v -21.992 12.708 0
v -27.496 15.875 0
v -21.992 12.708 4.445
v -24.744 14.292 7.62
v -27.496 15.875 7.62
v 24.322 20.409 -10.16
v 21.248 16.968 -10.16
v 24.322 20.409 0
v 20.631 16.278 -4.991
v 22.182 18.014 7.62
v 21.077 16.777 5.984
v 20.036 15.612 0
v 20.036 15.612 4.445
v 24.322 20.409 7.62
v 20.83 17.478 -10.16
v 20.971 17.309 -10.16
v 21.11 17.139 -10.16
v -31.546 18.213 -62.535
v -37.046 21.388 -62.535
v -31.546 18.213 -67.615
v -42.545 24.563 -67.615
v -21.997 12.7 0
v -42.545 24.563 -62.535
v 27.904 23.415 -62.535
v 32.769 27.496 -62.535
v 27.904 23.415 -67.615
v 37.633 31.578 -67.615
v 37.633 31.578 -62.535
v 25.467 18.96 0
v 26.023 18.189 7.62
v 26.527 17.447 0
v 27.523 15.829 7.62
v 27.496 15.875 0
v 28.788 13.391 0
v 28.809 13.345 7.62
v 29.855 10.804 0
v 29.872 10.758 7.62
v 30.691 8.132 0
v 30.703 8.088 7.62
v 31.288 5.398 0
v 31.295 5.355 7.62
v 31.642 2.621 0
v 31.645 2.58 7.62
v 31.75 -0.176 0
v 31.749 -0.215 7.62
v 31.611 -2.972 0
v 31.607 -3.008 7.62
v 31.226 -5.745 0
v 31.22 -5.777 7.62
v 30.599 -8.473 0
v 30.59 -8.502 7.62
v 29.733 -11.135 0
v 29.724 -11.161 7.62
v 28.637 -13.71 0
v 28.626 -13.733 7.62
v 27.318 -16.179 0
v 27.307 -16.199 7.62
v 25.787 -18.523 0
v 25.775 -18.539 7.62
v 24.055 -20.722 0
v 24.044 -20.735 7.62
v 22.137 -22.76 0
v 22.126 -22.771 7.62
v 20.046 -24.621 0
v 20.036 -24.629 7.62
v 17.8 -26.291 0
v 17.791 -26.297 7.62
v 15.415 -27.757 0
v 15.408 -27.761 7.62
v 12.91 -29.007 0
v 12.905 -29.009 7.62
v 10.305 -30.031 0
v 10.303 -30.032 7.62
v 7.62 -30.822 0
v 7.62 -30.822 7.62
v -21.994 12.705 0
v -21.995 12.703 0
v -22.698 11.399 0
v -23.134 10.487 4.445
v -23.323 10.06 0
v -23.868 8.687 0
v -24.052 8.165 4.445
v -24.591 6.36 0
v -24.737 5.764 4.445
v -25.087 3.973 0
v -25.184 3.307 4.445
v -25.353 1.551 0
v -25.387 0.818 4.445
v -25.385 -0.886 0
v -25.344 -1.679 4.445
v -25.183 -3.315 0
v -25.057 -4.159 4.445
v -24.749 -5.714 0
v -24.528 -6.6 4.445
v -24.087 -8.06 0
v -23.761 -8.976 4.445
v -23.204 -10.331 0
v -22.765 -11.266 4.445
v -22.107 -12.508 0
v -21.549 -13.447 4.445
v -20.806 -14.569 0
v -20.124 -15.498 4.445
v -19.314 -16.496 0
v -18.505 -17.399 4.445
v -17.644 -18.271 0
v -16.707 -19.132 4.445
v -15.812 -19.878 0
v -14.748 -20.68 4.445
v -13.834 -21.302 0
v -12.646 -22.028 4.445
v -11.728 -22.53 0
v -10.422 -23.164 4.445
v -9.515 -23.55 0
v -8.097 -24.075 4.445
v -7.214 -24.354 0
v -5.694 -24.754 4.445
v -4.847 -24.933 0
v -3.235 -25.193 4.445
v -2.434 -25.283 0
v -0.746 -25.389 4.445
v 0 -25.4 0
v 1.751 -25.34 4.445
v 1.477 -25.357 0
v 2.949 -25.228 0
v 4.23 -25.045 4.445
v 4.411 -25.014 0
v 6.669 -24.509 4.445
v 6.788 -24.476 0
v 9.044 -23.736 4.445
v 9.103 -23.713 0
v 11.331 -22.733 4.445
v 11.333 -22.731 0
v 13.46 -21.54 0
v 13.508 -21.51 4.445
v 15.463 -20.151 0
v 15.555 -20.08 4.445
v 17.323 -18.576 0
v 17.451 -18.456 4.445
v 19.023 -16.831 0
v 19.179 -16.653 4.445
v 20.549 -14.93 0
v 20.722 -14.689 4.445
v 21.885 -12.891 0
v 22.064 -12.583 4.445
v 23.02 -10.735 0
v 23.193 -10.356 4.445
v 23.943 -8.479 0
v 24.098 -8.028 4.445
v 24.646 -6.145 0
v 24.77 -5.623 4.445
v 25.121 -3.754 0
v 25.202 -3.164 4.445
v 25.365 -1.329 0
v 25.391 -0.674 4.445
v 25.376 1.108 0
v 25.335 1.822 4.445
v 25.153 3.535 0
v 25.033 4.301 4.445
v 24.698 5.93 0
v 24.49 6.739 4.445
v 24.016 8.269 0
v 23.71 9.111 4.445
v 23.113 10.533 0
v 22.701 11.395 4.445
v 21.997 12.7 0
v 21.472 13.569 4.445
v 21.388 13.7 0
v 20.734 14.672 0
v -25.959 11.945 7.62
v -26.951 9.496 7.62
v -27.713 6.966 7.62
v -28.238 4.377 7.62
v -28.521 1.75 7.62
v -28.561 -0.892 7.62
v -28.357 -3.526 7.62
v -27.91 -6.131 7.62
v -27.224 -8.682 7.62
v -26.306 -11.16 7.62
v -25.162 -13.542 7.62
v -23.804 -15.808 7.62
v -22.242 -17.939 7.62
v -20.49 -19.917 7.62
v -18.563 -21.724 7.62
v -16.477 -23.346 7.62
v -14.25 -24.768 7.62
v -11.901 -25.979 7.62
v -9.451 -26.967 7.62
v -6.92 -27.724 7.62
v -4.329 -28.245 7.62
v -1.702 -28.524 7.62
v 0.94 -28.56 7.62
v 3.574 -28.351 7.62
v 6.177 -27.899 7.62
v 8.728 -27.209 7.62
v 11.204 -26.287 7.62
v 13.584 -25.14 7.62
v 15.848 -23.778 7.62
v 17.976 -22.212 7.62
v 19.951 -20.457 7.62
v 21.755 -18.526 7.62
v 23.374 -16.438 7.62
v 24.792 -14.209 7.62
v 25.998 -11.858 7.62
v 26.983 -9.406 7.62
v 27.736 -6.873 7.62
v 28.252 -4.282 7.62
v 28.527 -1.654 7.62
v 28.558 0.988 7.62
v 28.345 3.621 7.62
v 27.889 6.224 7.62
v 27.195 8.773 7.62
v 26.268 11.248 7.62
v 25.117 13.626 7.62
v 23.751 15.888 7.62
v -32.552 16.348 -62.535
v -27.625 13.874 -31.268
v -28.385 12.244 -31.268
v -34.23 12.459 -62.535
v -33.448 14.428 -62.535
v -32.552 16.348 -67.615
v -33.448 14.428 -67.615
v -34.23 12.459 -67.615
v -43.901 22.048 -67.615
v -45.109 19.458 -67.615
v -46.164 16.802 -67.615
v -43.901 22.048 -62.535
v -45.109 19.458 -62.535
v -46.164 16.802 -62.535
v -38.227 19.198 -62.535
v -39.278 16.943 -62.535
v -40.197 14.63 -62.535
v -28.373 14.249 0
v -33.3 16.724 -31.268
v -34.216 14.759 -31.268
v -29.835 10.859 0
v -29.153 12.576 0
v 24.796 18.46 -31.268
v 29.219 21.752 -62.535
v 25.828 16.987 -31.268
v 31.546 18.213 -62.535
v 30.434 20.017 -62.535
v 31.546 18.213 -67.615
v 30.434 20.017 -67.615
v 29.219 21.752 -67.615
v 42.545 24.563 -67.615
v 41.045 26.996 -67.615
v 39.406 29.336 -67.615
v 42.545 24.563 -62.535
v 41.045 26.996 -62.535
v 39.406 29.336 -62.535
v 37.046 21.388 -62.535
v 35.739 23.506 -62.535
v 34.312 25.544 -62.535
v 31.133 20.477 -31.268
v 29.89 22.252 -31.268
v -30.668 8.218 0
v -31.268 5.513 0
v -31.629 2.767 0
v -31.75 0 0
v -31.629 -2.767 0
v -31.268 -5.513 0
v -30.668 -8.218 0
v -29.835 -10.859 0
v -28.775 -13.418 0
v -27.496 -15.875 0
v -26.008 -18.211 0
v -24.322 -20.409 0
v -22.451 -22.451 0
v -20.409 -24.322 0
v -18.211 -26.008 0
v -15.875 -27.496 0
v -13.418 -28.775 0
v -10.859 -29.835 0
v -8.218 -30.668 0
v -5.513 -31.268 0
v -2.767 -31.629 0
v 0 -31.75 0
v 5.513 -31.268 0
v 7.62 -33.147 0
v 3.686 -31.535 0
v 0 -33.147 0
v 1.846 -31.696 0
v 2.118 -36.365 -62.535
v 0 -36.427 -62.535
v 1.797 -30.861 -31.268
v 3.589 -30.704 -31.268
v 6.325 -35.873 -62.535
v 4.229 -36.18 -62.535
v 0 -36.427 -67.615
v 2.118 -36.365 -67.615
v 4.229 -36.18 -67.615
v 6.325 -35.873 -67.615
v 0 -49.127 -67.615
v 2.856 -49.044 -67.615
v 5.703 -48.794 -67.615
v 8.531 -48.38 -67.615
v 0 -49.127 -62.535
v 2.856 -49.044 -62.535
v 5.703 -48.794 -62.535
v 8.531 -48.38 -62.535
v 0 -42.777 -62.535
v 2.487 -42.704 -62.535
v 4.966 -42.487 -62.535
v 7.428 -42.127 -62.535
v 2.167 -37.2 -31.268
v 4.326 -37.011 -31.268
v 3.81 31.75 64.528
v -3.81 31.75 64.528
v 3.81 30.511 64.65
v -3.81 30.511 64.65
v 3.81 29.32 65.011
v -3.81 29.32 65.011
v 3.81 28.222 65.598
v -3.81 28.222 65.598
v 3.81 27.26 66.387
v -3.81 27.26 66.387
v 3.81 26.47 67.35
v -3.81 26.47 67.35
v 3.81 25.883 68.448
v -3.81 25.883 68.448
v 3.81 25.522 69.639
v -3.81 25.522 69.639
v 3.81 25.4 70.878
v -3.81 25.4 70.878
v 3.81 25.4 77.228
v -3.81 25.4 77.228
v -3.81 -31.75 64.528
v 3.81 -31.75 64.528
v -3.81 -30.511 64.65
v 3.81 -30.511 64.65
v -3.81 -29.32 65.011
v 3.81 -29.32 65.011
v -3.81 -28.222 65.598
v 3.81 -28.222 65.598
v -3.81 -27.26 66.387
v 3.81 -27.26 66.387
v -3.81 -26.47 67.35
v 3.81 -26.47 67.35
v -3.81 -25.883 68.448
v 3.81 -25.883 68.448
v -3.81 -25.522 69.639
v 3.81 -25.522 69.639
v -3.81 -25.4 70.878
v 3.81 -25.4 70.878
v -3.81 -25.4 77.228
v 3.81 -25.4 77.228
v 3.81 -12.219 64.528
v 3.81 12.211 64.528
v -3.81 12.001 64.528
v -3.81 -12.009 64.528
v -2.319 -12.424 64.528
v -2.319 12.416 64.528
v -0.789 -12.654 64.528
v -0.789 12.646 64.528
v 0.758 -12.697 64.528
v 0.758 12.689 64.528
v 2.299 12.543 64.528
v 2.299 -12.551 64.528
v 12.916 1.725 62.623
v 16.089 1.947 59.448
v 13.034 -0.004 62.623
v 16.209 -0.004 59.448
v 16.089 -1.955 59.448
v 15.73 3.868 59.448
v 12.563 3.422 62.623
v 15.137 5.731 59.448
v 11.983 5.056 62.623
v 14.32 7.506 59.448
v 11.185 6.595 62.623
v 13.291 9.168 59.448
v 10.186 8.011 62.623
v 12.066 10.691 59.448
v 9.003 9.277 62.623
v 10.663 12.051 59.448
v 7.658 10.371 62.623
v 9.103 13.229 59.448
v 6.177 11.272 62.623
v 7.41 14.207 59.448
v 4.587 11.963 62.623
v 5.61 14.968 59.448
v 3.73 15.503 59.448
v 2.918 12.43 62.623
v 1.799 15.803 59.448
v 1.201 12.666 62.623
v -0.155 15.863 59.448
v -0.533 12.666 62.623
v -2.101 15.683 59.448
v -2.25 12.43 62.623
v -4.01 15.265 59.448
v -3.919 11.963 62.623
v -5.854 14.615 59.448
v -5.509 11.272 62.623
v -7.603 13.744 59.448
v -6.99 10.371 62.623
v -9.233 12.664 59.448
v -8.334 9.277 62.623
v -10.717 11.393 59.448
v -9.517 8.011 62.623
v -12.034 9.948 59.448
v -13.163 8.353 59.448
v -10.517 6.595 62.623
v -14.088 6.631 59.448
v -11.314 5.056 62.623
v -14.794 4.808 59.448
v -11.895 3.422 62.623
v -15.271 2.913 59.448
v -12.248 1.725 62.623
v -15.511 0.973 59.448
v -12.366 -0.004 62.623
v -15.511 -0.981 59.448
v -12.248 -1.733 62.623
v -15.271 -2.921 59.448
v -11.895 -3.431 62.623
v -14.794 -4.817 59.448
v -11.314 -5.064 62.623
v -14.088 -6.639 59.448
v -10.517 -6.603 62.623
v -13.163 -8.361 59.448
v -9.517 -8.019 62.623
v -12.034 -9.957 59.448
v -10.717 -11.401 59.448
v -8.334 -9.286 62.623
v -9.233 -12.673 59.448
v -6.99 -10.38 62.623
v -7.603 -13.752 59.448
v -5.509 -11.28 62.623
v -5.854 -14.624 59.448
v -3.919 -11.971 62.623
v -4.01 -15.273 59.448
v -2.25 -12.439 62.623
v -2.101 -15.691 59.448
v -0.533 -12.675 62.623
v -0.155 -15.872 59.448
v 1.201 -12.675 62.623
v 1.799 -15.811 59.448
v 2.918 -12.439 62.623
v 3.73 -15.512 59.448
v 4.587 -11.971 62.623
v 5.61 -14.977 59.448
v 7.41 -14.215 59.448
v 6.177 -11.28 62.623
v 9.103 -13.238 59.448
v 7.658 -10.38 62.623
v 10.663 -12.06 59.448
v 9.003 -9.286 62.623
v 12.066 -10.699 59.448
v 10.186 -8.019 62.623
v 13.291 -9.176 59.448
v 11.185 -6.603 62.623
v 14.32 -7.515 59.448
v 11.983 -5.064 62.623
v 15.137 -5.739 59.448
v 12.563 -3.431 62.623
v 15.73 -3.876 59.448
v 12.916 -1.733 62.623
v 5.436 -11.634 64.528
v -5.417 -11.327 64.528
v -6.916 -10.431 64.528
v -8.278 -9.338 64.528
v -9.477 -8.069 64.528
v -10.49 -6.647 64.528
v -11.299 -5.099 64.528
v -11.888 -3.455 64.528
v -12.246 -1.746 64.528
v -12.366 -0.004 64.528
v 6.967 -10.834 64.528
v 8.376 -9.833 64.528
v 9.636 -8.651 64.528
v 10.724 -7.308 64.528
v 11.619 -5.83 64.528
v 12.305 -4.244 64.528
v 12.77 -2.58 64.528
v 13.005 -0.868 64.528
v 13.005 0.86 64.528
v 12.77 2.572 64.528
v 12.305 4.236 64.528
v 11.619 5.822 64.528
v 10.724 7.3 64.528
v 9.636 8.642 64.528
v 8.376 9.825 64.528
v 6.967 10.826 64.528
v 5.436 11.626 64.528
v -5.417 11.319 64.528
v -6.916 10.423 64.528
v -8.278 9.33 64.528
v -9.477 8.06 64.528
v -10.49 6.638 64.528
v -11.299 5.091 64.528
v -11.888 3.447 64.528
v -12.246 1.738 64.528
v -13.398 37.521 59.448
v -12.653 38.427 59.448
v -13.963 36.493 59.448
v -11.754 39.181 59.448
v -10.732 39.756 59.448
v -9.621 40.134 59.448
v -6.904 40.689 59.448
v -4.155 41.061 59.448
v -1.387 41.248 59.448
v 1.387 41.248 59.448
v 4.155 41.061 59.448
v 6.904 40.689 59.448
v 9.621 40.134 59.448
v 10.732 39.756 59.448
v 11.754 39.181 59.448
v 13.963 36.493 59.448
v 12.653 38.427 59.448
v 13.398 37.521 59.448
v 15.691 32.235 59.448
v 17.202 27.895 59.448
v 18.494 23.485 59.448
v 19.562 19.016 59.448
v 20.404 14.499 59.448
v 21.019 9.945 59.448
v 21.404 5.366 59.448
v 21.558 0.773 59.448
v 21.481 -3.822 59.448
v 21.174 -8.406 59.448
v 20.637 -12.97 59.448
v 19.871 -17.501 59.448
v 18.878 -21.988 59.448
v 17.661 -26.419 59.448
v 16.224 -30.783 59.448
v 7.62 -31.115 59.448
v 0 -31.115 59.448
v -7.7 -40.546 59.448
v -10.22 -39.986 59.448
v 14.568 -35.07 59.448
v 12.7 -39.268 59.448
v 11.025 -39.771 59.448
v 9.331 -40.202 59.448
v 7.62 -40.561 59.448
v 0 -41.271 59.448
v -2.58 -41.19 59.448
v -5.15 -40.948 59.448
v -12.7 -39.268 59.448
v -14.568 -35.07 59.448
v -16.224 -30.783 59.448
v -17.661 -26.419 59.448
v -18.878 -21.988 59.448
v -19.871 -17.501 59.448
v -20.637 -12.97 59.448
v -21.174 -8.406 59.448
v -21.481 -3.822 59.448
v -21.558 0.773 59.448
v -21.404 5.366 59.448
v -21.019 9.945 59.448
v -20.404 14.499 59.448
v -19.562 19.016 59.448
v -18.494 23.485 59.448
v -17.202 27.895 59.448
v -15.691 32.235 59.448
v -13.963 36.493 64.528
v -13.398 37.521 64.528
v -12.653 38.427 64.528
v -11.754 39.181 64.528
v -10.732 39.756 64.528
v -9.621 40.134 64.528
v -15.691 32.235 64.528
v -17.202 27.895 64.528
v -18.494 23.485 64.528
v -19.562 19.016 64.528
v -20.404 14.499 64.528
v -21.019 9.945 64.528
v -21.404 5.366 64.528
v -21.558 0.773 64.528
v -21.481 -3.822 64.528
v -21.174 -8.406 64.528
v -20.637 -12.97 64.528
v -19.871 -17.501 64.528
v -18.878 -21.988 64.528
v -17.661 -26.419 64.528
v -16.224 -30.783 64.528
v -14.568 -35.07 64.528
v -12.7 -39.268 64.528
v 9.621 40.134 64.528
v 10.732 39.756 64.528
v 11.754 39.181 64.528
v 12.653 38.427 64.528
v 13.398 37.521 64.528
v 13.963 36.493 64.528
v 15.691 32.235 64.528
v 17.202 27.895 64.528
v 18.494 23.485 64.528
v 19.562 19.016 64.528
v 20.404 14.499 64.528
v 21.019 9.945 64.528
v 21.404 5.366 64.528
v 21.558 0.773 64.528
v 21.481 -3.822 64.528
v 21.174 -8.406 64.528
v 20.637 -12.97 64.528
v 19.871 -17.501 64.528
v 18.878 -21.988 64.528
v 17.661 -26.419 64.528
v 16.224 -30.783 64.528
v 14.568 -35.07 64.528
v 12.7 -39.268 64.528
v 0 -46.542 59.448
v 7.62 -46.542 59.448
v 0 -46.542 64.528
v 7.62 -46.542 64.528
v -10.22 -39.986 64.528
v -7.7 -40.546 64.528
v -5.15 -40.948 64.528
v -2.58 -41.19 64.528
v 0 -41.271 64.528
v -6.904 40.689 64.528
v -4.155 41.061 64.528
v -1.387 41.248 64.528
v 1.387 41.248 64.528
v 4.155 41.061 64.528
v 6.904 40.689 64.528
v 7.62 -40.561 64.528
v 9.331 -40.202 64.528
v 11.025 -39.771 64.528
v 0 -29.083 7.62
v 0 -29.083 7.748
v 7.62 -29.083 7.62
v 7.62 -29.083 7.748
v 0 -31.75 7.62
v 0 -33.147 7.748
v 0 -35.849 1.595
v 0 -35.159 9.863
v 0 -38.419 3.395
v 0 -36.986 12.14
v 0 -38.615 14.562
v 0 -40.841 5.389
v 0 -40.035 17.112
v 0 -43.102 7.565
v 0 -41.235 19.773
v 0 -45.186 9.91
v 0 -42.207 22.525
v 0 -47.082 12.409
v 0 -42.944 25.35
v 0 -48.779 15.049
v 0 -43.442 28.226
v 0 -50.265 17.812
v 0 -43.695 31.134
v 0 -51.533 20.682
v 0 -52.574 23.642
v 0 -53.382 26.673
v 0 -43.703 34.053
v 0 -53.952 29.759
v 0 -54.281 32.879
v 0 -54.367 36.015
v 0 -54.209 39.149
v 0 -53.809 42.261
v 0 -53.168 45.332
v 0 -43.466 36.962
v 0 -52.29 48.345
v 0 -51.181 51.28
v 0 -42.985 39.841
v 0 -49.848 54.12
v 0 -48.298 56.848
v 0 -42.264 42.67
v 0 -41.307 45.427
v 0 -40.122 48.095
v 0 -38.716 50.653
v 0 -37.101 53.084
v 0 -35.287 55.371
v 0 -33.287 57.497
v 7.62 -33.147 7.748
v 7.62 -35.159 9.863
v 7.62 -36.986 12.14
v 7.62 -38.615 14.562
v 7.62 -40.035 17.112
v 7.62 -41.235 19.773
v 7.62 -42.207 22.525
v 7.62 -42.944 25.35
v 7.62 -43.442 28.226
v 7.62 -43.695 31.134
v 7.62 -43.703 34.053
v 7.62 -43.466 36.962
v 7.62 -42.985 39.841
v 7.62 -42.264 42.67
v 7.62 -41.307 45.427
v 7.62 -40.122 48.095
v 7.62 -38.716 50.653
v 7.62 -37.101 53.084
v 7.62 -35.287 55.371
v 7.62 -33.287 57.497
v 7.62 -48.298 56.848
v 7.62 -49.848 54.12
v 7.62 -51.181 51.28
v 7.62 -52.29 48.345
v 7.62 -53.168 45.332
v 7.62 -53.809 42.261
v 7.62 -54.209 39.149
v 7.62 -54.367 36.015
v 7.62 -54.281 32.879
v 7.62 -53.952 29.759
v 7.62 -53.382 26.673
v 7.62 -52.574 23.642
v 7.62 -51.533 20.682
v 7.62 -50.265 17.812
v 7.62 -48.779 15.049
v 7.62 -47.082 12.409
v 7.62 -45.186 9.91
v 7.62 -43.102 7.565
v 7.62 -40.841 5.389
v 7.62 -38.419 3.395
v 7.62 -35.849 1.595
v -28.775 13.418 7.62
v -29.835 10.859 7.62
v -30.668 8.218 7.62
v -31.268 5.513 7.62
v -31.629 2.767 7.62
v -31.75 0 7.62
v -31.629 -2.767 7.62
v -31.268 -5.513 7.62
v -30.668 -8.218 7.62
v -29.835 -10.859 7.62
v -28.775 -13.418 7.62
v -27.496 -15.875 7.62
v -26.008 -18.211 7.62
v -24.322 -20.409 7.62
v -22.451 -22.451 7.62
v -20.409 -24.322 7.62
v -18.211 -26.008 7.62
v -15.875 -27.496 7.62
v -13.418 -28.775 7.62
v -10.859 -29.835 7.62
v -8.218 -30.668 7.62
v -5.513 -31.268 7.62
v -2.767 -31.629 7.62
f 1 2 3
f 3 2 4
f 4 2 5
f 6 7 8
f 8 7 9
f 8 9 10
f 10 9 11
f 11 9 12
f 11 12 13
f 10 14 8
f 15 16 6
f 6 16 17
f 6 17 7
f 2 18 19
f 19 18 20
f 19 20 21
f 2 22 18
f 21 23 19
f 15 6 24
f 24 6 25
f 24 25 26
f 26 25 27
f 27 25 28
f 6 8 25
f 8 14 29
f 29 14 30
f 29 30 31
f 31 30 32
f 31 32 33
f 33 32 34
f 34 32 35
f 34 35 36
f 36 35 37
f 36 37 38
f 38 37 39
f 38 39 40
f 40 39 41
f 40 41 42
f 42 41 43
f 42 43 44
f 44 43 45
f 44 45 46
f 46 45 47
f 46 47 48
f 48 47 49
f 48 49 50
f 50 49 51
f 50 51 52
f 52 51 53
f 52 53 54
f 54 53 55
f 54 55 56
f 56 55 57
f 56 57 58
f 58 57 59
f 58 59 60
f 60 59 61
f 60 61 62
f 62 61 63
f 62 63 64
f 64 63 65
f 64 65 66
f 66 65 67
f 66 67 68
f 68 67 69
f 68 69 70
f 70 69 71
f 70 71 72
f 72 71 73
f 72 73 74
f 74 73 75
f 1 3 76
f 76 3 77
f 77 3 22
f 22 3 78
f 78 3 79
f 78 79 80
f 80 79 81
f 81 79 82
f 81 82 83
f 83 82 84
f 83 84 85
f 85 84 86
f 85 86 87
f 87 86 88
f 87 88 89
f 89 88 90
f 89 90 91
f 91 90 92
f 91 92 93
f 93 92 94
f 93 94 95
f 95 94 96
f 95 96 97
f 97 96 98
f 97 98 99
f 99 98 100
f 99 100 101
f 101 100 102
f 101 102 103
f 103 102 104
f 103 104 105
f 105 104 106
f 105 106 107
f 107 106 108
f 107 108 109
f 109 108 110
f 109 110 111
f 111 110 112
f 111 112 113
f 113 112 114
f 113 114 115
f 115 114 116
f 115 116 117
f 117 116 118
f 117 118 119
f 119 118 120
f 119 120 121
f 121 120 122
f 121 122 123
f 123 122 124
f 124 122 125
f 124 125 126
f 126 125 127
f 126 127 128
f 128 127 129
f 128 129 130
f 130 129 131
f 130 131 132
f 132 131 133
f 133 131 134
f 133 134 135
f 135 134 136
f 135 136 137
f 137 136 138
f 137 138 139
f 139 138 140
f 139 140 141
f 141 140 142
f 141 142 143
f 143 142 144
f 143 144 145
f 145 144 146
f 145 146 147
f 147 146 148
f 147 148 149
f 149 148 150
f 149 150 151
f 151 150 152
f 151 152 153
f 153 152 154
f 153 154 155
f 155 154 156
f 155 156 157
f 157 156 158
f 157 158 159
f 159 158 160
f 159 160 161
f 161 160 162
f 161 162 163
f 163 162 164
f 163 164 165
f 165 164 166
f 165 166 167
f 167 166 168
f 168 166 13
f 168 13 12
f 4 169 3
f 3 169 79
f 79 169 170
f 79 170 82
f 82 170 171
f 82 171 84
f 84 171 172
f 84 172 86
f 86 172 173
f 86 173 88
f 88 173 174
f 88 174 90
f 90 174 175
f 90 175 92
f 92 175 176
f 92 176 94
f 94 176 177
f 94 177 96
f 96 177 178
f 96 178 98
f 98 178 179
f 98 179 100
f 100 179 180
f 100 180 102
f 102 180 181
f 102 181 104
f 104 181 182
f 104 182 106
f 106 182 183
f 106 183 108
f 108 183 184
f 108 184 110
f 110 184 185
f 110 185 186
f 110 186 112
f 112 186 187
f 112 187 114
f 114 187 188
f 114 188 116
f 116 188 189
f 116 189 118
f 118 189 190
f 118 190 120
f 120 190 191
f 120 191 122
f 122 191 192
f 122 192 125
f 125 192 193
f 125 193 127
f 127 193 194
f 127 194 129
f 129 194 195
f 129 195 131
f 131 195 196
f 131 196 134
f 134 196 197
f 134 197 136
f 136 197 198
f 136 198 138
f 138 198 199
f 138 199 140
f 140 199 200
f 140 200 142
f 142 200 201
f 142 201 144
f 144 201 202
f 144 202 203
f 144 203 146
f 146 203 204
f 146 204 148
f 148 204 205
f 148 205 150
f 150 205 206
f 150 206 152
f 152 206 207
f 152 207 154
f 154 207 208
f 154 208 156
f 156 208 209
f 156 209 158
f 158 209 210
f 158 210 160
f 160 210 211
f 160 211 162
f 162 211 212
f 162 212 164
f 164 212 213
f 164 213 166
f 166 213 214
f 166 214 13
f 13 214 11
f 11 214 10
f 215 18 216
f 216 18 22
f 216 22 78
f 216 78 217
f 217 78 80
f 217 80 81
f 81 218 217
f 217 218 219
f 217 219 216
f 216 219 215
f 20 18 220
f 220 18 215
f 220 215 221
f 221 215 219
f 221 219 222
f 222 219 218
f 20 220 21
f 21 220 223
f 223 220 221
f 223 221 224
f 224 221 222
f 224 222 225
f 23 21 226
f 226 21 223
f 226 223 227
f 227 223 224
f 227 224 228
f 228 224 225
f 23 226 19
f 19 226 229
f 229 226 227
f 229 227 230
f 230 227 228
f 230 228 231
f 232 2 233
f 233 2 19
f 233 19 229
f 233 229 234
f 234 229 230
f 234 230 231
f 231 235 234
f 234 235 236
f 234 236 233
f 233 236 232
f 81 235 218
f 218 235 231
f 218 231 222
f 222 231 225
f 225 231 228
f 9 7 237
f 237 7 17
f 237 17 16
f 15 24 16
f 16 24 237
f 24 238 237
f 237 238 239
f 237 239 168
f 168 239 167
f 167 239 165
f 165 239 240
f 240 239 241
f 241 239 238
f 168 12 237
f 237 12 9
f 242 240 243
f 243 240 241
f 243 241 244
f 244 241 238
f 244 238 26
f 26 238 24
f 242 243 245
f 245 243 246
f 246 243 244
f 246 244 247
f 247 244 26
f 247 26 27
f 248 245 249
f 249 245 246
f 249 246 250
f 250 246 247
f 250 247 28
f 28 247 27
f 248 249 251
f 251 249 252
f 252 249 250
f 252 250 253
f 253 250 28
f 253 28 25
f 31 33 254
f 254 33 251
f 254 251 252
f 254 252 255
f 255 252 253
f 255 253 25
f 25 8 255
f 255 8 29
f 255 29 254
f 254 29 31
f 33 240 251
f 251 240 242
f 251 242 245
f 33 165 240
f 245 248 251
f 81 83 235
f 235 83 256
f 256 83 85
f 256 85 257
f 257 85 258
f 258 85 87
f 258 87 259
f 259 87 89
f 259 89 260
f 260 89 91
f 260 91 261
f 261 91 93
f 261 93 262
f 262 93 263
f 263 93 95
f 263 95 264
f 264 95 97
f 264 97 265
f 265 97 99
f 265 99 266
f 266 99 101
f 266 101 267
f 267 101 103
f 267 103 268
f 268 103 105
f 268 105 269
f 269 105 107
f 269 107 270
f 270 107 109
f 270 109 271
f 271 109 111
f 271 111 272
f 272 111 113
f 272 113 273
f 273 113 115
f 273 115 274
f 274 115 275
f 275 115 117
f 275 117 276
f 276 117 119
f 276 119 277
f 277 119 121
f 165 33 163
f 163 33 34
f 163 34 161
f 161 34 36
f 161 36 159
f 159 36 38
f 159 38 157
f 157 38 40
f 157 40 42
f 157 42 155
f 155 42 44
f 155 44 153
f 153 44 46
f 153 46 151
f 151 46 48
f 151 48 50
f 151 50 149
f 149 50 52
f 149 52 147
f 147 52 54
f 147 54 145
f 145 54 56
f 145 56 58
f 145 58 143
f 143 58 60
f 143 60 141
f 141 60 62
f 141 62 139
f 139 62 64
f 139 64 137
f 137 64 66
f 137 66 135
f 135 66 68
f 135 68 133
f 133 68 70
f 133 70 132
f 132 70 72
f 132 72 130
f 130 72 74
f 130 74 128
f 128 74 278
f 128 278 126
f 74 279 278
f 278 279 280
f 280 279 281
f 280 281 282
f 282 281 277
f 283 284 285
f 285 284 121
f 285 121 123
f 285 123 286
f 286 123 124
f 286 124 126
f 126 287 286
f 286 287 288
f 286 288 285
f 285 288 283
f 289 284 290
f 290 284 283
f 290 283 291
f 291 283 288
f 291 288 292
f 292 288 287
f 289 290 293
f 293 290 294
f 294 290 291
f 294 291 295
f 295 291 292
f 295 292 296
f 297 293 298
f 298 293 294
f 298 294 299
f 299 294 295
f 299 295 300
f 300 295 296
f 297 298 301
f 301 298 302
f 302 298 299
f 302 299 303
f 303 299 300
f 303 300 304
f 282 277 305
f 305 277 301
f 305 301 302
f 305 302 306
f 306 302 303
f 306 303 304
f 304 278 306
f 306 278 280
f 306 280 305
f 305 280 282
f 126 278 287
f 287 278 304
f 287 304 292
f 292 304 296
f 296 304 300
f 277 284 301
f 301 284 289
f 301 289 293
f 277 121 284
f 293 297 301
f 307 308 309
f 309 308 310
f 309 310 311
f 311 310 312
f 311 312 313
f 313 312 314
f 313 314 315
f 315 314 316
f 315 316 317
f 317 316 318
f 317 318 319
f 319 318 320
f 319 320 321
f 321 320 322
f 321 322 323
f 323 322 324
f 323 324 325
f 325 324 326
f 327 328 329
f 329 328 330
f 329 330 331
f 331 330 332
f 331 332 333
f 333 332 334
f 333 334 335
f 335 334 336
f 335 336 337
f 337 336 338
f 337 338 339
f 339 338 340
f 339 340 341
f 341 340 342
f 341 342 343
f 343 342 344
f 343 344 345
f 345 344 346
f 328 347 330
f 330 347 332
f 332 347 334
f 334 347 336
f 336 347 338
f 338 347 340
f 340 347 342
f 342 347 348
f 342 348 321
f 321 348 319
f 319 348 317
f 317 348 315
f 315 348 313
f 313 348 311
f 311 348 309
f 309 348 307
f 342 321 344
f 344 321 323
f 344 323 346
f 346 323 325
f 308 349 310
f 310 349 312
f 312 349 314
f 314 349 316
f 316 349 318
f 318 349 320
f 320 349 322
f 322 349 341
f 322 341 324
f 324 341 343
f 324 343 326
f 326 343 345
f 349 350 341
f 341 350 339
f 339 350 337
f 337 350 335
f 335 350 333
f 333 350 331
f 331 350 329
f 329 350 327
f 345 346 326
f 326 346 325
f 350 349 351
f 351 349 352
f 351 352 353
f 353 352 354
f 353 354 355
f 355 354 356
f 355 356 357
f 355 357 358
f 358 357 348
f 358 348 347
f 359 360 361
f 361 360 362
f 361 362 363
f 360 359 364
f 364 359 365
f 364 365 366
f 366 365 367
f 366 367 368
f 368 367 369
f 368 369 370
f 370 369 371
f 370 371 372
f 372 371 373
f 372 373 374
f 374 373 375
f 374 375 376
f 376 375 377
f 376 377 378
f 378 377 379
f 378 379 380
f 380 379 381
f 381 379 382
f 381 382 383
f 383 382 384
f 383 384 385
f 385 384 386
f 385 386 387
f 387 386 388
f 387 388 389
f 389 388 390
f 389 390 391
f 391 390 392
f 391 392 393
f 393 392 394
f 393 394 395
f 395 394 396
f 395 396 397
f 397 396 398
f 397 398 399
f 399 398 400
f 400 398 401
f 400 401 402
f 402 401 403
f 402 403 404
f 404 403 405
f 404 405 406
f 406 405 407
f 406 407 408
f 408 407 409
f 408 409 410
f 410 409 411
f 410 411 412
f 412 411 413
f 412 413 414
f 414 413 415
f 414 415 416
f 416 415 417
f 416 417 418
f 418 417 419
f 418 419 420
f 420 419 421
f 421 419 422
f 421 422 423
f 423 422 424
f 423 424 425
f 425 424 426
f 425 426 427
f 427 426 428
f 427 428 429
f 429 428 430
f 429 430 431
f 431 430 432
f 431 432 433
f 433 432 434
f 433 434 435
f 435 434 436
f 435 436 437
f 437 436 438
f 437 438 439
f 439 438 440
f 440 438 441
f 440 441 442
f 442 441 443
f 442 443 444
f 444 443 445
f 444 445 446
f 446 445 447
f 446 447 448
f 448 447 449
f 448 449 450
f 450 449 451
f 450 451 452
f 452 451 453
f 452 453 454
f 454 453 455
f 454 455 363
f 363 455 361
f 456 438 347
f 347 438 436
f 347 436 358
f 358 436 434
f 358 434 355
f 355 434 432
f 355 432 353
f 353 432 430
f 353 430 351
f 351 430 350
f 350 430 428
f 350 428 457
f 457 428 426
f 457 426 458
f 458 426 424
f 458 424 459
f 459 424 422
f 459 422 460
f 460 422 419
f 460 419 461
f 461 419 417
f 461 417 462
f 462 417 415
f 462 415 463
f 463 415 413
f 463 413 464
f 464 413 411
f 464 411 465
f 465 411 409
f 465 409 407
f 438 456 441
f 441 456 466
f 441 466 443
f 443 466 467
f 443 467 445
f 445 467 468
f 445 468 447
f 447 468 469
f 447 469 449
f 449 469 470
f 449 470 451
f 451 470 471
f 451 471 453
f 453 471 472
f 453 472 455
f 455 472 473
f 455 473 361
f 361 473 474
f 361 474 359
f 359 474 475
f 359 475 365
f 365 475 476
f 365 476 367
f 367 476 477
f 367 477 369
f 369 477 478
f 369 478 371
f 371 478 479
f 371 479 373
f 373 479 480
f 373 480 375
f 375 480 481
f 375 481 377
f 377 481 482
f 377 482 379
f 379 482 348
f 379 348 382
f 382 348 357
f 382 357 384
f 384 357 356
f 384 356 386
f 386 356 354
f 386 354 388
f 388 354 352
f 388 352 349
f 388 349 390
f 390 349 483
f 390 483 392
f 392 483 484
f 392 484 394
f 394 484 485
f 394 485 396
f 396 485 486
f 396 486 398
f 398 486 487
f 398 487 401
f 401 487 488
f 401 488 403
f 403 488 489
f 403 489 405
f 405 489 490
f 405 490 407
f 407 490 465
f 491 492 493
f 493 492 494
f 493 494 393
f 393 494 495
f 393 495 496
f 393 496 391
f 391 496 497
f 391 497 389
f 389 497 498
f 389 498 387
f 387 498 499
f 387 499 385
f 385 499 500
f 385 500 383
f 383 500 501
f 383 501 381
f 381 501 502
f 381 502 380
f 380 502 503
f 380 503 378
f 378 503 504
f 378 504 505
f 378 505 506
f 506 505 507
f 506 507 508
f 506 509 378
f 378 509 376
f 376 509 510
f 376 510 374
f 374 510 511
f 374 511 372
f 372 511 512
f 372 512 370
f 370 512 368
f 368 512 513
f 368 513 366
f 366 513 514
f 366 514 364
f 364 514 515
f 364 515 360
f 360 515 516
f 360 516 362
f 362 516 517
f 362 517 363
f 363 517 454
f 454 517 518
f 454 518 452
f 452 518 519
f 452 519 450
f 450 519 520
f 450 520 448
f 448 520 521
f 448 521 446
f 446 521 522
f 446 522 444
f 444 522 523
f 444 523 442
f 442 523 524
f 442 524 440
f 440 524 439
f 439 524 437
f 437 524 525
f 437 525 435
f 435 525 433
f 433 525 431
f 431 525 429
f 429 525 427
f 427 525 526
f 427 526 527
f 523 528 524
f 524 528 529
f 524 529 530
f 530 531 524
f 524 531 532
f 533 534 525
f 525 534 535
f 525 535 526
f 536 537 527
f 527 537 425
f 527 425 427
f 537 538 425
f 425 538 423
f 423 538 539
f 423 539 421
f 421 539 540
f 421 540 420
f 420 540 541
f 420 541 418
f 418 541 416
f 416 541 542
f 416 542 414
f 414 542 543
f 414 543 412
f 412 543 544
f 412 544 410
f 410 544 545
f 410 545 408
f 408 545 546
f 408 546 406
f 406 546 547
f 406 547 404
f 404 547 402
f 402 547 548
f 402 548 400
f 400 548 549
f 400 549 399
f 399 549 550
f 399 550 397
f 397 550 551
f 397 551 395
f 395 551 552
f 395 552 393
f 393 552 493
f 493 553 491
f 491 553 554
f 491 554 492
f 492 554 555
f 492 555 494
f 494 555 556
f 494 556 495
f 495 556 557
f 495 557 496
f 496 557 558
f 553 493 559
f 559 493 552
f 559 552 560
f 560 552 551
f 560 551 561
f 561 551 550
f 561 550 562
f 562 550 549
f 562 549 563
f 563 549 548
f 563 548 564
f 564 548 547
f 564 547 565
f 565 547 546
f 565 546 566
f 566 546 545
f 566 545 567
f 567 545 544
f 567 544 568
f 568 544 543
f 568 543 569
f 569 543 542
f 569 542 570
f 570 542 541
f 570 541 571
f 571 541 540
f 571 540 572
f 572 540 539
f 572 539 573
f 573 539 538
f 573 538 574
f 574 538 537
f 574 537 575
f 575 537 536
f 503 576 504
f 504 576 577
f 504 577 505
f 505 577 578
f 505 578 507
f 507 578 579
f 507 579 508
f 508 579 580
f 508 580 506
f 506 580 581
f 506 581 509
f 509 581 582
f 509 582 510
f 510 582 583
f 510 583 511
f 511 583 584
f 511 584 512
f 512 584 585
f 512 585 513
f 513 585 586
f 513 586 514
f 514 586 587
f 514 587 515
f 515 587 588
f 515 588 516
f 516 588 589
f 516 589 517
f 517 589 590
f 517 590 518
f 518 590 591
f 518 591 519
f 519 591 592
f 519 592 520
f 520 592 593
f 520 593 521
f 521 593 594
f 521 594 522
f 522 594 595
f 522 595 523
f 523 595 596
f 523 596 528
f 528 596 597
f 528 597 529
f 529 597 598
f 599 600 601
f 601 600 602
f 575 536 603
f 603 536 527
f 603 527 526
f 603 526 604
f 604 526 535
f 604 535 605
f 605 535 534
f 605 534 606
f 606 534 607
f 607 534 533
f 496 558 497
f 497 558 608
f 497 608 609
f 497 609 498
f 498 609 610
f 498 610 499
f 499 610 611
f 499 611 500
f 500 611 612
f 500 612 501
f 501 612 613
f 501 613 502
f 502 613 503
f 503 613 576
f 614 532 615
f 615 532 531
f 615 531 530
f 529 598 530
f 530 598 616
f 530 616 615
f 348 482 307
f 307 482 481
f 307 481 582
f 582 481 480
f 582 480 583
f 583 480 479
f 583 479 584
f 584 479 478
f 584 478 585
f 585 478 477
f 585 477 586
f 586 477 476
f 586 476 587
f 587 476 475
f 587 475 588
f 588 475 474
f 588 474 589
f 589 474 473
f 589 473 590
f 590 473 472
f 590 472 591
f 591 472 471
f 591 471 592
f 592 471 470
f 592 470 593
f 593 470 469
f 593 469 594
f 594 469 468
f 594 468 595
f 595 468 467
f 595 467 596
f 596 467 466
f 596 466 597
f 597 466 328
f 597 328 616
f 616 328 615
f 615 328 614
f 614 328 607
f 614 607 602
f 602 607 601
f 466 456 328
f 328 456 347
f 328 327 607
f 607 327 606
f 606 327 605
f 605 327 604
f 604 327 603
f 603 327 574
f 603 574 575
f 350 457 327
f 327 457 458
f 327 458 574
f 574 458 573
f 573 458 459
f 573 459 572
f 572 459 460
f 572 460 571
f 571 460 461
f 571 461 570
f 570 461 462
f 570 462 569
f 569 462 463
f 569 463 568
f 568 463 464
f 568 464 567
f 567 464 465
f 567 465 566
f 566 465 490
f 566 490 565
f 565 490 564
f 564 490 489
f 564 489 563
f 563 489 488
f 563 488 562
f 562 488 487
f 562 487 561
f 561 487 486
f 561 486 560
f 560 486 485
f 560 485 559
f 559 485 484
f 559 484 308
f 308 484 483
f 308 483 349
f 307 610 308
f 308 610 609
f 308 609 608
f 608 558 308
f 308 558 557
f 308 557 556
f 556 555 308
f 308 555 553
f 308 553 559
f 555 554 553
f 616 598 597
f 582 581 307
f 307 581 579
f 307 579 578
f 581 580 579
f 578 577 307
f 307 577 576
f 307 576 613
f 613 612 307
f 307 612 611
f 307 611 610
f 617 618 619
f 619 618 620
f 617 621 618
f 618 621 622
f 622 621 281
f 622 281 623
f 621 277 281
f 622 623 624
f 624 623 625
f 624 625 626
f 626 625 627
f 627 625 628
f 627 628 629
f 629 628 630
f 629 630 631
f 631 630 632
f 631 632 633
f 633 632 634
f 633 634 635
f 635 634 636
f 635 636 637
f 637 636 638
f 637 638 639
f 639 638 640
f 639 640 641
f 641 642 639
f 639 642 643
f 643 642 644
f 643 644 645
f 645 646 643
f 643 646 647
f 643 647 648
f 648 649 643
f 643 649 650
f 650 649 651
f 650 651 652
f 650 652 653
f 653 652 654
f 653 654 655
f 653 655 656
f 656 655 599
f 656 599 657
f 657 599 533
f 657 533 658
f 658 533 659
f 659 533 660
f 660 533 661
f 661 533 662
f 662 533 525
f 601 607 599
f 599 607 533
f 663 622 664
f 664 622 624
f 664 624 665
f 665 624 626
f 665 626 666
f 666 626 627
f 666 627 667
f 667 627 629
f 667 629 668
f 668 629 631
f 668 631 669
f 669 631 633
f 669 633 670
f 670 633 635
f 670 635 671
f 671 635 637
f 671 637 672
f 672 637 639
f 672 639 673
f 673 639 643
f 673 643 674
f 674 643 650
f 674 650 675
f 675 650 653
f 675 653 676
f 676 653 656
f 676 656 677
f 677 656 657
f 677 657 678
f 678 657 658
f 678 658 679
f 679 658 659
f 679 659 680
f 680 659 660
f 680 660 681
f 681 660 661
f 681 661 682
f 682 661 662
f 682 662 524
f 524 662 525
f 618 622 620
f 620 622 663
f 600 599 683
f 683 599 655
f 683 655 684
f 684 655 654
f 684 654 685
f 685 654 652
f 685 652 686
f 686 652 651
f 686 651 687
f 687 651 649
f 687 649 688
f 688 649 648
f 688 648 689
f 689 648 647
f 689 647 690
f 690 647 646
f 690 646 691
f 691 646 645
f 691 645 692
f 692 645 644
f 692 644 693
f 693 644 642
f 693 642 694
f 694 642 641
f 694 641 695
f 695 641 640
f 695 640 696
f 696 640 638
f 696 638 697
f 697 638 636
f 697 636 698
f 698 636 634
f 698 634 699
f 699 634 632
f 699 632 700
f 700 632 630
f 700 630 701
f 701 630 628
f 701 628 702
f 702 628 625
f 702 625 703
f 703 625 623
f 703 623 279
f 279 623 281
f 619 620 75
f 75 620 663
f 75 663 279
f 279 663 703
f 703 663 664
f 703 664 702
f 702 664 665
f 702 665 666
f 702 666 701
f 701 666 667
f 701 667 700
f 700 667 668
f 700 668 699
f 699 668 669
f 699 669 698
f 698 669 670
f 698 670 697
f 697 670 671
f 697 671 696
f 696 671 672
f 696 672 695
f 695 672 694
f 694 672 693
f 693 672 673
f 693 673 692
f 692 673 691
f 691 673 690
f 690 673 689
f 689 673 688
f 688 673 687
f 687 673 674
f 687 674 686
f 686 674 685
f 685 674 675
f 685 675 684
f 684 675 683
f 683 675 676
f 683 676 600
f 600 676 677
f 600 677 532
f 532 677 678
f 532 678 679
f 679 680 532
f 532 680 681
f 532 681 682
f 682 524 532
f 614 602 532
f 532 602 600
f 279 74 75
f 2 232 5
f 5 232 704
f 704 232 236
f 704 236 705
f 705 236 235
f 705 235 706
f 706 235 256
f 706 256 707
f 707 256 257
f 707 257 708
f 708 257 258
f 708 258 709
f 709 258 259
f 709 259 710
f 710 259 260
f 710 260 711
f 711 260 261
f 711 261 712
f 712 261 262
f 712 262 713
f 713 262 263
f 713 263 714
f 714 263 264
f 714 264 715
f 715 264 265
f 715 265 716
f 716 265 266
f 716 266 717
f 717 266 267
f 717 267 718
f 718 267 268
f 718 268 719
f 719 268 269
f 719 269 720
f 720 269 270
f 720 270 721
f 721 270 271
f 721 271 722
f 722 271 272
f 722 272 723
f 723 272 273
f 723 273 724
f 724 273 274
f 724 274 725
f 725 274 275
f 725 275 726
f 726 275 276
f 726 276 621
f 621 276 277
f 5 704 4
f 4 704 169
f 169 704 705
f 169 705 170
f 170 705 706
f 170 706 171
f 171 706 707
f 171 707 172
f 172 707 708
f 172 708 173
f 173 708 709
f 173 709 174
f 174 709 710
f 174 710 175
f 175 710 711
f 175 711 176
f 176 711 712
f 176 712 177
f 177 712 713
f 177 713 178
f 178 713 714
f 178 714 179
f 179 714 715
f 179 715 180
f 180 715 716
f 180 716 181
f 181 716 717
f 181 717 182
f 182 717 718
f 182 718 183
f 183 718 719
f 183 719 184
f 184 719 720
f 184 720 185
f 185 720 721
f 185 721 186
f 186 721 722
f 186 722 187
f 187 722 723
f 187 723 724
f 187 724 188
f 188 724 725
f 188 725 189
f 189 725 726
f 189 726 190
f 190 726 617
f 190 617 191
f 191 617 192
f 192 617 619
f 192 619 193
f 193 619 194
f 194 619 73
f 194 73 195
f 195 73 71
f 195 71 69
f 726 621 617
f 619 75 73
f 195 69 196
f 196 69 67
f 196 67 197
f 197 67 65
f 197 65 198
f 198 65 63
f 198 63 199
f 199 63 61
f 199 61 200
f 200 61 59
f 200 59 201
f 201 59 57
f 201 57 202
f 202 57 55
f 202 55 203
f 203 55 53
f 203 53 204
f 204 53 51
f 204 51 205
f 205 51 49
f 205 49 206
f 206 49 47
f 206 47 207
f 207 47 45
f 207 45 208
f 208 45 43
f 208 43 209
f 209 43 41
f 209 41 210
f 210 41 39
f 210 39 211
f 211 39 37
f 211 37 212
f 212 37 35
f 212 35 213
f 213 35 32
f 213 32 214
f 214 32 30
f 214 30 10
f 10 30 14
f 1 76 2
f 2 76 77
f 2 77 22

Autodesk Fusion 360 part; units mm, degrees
sketch "Sketch1" plane through (0, 0, 0) normal (0, 0, 1) x (1, 0, 0)
  circle A0 centre (0, 0) radius 31.75
  circle A1 centre (0, 0) radius 25.4
  dimension "d1" = 63.5
  dimension "d2" = 50.8
extrude "Extrude1" add sketch "Sketch1" along normal blind 7.62 makes body 1
chamfer "Chamfer1" distance 3.175 distance2 3.175 1 edges at (-23.6811, 9.185, 7.62) measured on face at (29.4206, -2.8393, 7.62) on bodies 1
sketch "Sketch2" plane through (0, 0, 0) normal (1, 0, 0) x (0, 1, 0)
  arc A0 (-31.115, 59.4476) -> (-33.147, 7.7483) centre (-9.0465, 32.6906) ccw
  arc A1 (-46.5417, 59.4476) -> (-33.147, 0) centre (-13.9818, 35.5511) ccw
  line L0 (-33.147, 7.7483) -> (-33.147, 0)
  line L1 (-33.147, 7.7483) -> (-29.083, 7.7483)
  line L2 (-29.083, 7.7483) -> (-29.083, 0)
  line L3 (-29.083, 0) -> (-33.147, 0)
  line L4 (-33.147, 0) -> (-33.147, 7.7483)
  line L5 (-31.115, 0) -> (-31.115, 59.4476) construction
  line L6 (-46.5417, 59.4476) -> (-31.115, 59.4476)
extrude "Extrude2" add sketch "Sketch2" along normal blind 7.62 bodies 1
sketch "Sketch5" plane through (0, 0, 59.4476) normal (0, 0, 1) x (-1, 0, 0)
  line L0 (0, 31.115) -> (0, 46.5417)
  line L1 (0, 46.5417) -> (-7.62, 46.5417)
  line L2 (-7.62, 46.5417) -> (-7.62, 31.115)
  line L3 (-7.62, 31.115) -> (0, 31.115)
  line L4 (12.7, 39.2684) -> (-12.7, 39.2684) construction
  line L5 (-12.7, 39.2684) -> (-12.7, -39.2684) construction
  line L6 (-12.7, -39.2684) -> (12.7, -39.2684) construction
  line L7 (12.7, -39.2684) -> (12.7, 39.2684) construction
  line L8 (12.7, 39.2684) -> (-12.7, -39.2684) construction
  line L9 (-12.7, 39.2684) -> (12.7, -39.2684) construction
  arc A0 (12.7, -39.2684) -> (12.7, 39.2684) centre (-69.8788, 0) ccw
  arc A1 (12.7, 39.2684) -> (-12.7, 39.2684) centre (0, -0.0042) ccw
  arc A2 (-12.7, 39.2684) -> (-12.7, -39.2684) centre (69.8788, 0) ccw
  arc A3 (-12.7, -39.2684) -> (12.7, -39.2684) centre (0, 0.0042) ccw
  line L10 (0, 46.5417) -> (-7.62, 46.5417)
  line L11 (-7.62, 46.5417) -> (-7.62, 31.115)
  line L12 (-7.62, 31.115) -> (0, 31.115)
  line L13 (0, 31.115) -> (0, 46.5417)
  dimension "d20" = 25.4
  dimension "d21" = 78.5368
  dimension "d22" = 91.44
  dimension "d23" = 41.275
  dimension "d24" = 91.44
  dimension "d25" = 41.275
extrude "Extrude3" add sketch "Sketch5" along normal blind 5.08 separate body contours L0 L2 L3 A0 A1 A2 A3 L11 L12 L13 makes body 2
extrude "Extrude4" add 1 faces at (2.54, -36.2572, 59.4476) along direction (0, 0, 1) blind 5.08 on bodies 1 bodies 1 2
fillet "Fillet1" radius 6.35 1 edges at (12.7, 39.2684, 61.9876) on bodies 1
fillet "Fillet2" radius 6.35 1 edges at (-12.7, 39.2684, 61.9876) on bodies 1
sketch "Sketch6" plane through (0, 0, 64.5276) normal (0, 0, 1) x (-1, 0, 0)
  arc A0 (9.6213, -40.1338) -> (13.9635, -36.4929) centre (8.1411, -33.9587) ccw
  arc A1 (13.9635, -36.4929) -> (12.7, 39.2684) centre (-69.8788, 0) ccw
  arc A2 (12.7, 39.2684) -> (0, 41.2708) centre (0, -0.0042) ccw
  line L0 (0, 41.2708) -> (0, 46.5417)
  line L1 (0, 46.5417) -> (-7.62, 46.5417)
  line L2 (-7.62, 46.5417) -> (-7.62, 40.5613)
  arc A3 (-7.62, 40.5613) -> (-12.7, 39.2684) centre (0, -0.0042) ccw
  arc A4 (-12.7, 39.2684) -> (-13.9635, -36.4929) centre (69.8788, 0) ccw
  arc A5 (-13.9635, -36.4929) -> (-9.6213, -40.1338) centre (-8.1411, -33.9587) ccw
  arc A6 (-9.6213, -40.1338) -> (9.6213, -40.1338) centre (0, 0.0042) ccw
  circle A7 centre (-0.3341, 0.0042) radius 12.7
  dimension "d35" = 25.4
extrude "Extrude5" cut sketch "Sketch6" against normal blind 5.08 contours A7 bodies 1
chamfer "Chamfer2" distance 3.175 angle 45 1 edges at (12.1747, 4.5883, 59.4476) on bodies 1
sketch "Sketch7" plane through (0, 0, 64.5276) normal (0, 0, 1) x (-1, 0, 0)
  circle A0 centre (-0.3341, 0.0042) radius 12.7
  arc A1 (9.6213, -40.1338) -> (13.9635, -36.4929) centre (8.1411, -33.9587) ccw
  arc A2 (13.9635, -36.4929) -> (12.7, 39.2684) centre (-69.8788, 0) ccw
  arc A3 (12.7, 39.2684) -> (0, 41.2708) centre (0, -0.0042) ccw
  line L0 (0, 41.2708) -> (0, 46.5417)
  line L1 (0, 46.5417) -> (-7.62, 46.5417)
  line L2 (-7.62, 46.5417) -> (-7.62, 40.5613)
  arc A4 (-7.62, 40.5613) -> (-12.7, 39.2684) centre (0, -0.0042) ccw
  arc A5 (-12.7, 39.2684) -> (-13.9635, -36.4929) centre (69.8788, 0) ccw
  arc A6 (-13.9635, -36.4929) -> (-9.6213, -40.1338) centre (-8.1411, -33.9587) ccw
  arc A7 (-9.6213, -40.1338) -> (9.6213, -40.1338) centre (0, 0.0042) ccw
  line L3 (3.81, 25.4) -> (-3.81, 25.4)
  line L4 (-3.81, 25.4) -> (-3.81, -25.4)
  line L5 (-3.81, -25.4) -> (3.81, -25.4)
  line L6 (3.81, -25.4) -> (3.81, 25.4)
  line L7 (3.81, 25.4) -> (-3.81, -25.4) construction
  line L8 (-3.81, 25.4) -> (3.81, -25.4) construction
  dimension "d39" = 7.62
  dimension "d40" = 50.8
extrude "Extrude6" add sketch "Sketch7" along normal blind 12.7 contours A0 L4 L6 | A0 L3 L4 L6 | A0 L4 L5 L6 bodies 1
fillet "Fillet3" radius 6.35 1 edges at (0, -25.4, 64.5276) on bodies 1
fillet "Fillet4" radius 6.35 1 edges at (0, 25.4, 64.5276) on bodies 1
sketch "Sketch10" plane through (0, 0, 0) normal (1, 0, 0) x (0, 1, 0)
  line L0 (-31.75, 0) -> (-42.7767, -62.5353)
  line L1 (-31.75, 0) -> (31.75, 0) construction
  line L2 (-31.75, 0) -> (-25.4, 0)
  line L3 (-25.4, 0) -> (-36.4267, -62.5353)
  line L4 (-25.4, 0) -> (38.1, 0) construction
  line L5 (-36.4267, -62.5353) -> (-49.1267, -62.5353)
  line L6 (-49.1267, -62.5353) -> (-49.1267, -67.6153)
  line L7 (-49.1267, -67.6153) -> (-36.4267, -67.6153)
  line L8 (-36.4267, -67.6153) -> (-36.4267, -62.5353)
  dimension "d57" = 100
  dimension "d58" = 63.5
  dimension "d59" = 6.35
  dimension "d60" = 100
  dimension "d61" = 63.5
  dimension "d62" = 12.7
  dimension "d63" = 5.08
revolve "Revolve2" add sketch "Sketch10" angle 10 about axis through (0, 0, 1.75) along (0, 0, 1) bodies 1
pattern_circular "C-Pattern1" count 3 over 360 about axis through (0, 0, 1.75) along (0, 0, 1) of "Revolve2"
sketch "Sketch11" plane through (0, 0, 7.62) normal (0, 0, 1) x (-1, 0, 0)
  circle A0 centre (0, 0) radius 28.575
  line L0 (0, 31.75) -> (0, 29.083)
  line L1 (0, 29.083) -> (-7.62, 29.083)
  line L2 (-7.62, 29.083) -> (-7.62, 30.822)
  arc A1 (-7.62, 30.822) -> (0, 31.75) centre (0, 0) ccw
  line L3 (-27.4963, -15.875) -> (-37.0457, -21.3883)
  arc A2 (-37.0457, -21.3883) -> (-32.7688, -27.4963) centre (0, 0) ccw
  line L4 (-32.7688, -27.4963) -> (-24.3219, -20.4085)
  arc A3 (-27.4963, -15.875) -> (-24.3219, -20.4085) centre (0, 0) ccw
  line L5 (27.4963, -15.875) -> (37.0457, -21.3883)
  arc A4 (37.0457, -21.3883) -> (40.1969, -14.6305) centre (0, 0) ccw
  line L6 (40.1969, -14.6305) -> (29.8352, -10.8591)
  arc A5 (27.4963, -15.875) -> (29.8352, -10.8591) centre (0, 0) ccw
  line L7 (27.4963, -15.875) -> (10.16, -5.9004)
  line L8 (-24.3219, -20.4085) -> (-11.3582, -5.9004)
  line L9 (-11.3582, -5.9004) -> (10.16, -5.9004)
  line L10 (-32.7688, -27.4963) -> (0, -40.64)
  line L11 (0, -40.64) -> (37.0457, -21.3883)
extrude "Extrude7" cut sketch "Sketch11" against normal blind 17.78 contours A0 L7 L8 L9 | A0 A1 L7 L8 | A1 L4 L5 L10 L11 picked at (-0.3547, -13.4585) bodies 1
